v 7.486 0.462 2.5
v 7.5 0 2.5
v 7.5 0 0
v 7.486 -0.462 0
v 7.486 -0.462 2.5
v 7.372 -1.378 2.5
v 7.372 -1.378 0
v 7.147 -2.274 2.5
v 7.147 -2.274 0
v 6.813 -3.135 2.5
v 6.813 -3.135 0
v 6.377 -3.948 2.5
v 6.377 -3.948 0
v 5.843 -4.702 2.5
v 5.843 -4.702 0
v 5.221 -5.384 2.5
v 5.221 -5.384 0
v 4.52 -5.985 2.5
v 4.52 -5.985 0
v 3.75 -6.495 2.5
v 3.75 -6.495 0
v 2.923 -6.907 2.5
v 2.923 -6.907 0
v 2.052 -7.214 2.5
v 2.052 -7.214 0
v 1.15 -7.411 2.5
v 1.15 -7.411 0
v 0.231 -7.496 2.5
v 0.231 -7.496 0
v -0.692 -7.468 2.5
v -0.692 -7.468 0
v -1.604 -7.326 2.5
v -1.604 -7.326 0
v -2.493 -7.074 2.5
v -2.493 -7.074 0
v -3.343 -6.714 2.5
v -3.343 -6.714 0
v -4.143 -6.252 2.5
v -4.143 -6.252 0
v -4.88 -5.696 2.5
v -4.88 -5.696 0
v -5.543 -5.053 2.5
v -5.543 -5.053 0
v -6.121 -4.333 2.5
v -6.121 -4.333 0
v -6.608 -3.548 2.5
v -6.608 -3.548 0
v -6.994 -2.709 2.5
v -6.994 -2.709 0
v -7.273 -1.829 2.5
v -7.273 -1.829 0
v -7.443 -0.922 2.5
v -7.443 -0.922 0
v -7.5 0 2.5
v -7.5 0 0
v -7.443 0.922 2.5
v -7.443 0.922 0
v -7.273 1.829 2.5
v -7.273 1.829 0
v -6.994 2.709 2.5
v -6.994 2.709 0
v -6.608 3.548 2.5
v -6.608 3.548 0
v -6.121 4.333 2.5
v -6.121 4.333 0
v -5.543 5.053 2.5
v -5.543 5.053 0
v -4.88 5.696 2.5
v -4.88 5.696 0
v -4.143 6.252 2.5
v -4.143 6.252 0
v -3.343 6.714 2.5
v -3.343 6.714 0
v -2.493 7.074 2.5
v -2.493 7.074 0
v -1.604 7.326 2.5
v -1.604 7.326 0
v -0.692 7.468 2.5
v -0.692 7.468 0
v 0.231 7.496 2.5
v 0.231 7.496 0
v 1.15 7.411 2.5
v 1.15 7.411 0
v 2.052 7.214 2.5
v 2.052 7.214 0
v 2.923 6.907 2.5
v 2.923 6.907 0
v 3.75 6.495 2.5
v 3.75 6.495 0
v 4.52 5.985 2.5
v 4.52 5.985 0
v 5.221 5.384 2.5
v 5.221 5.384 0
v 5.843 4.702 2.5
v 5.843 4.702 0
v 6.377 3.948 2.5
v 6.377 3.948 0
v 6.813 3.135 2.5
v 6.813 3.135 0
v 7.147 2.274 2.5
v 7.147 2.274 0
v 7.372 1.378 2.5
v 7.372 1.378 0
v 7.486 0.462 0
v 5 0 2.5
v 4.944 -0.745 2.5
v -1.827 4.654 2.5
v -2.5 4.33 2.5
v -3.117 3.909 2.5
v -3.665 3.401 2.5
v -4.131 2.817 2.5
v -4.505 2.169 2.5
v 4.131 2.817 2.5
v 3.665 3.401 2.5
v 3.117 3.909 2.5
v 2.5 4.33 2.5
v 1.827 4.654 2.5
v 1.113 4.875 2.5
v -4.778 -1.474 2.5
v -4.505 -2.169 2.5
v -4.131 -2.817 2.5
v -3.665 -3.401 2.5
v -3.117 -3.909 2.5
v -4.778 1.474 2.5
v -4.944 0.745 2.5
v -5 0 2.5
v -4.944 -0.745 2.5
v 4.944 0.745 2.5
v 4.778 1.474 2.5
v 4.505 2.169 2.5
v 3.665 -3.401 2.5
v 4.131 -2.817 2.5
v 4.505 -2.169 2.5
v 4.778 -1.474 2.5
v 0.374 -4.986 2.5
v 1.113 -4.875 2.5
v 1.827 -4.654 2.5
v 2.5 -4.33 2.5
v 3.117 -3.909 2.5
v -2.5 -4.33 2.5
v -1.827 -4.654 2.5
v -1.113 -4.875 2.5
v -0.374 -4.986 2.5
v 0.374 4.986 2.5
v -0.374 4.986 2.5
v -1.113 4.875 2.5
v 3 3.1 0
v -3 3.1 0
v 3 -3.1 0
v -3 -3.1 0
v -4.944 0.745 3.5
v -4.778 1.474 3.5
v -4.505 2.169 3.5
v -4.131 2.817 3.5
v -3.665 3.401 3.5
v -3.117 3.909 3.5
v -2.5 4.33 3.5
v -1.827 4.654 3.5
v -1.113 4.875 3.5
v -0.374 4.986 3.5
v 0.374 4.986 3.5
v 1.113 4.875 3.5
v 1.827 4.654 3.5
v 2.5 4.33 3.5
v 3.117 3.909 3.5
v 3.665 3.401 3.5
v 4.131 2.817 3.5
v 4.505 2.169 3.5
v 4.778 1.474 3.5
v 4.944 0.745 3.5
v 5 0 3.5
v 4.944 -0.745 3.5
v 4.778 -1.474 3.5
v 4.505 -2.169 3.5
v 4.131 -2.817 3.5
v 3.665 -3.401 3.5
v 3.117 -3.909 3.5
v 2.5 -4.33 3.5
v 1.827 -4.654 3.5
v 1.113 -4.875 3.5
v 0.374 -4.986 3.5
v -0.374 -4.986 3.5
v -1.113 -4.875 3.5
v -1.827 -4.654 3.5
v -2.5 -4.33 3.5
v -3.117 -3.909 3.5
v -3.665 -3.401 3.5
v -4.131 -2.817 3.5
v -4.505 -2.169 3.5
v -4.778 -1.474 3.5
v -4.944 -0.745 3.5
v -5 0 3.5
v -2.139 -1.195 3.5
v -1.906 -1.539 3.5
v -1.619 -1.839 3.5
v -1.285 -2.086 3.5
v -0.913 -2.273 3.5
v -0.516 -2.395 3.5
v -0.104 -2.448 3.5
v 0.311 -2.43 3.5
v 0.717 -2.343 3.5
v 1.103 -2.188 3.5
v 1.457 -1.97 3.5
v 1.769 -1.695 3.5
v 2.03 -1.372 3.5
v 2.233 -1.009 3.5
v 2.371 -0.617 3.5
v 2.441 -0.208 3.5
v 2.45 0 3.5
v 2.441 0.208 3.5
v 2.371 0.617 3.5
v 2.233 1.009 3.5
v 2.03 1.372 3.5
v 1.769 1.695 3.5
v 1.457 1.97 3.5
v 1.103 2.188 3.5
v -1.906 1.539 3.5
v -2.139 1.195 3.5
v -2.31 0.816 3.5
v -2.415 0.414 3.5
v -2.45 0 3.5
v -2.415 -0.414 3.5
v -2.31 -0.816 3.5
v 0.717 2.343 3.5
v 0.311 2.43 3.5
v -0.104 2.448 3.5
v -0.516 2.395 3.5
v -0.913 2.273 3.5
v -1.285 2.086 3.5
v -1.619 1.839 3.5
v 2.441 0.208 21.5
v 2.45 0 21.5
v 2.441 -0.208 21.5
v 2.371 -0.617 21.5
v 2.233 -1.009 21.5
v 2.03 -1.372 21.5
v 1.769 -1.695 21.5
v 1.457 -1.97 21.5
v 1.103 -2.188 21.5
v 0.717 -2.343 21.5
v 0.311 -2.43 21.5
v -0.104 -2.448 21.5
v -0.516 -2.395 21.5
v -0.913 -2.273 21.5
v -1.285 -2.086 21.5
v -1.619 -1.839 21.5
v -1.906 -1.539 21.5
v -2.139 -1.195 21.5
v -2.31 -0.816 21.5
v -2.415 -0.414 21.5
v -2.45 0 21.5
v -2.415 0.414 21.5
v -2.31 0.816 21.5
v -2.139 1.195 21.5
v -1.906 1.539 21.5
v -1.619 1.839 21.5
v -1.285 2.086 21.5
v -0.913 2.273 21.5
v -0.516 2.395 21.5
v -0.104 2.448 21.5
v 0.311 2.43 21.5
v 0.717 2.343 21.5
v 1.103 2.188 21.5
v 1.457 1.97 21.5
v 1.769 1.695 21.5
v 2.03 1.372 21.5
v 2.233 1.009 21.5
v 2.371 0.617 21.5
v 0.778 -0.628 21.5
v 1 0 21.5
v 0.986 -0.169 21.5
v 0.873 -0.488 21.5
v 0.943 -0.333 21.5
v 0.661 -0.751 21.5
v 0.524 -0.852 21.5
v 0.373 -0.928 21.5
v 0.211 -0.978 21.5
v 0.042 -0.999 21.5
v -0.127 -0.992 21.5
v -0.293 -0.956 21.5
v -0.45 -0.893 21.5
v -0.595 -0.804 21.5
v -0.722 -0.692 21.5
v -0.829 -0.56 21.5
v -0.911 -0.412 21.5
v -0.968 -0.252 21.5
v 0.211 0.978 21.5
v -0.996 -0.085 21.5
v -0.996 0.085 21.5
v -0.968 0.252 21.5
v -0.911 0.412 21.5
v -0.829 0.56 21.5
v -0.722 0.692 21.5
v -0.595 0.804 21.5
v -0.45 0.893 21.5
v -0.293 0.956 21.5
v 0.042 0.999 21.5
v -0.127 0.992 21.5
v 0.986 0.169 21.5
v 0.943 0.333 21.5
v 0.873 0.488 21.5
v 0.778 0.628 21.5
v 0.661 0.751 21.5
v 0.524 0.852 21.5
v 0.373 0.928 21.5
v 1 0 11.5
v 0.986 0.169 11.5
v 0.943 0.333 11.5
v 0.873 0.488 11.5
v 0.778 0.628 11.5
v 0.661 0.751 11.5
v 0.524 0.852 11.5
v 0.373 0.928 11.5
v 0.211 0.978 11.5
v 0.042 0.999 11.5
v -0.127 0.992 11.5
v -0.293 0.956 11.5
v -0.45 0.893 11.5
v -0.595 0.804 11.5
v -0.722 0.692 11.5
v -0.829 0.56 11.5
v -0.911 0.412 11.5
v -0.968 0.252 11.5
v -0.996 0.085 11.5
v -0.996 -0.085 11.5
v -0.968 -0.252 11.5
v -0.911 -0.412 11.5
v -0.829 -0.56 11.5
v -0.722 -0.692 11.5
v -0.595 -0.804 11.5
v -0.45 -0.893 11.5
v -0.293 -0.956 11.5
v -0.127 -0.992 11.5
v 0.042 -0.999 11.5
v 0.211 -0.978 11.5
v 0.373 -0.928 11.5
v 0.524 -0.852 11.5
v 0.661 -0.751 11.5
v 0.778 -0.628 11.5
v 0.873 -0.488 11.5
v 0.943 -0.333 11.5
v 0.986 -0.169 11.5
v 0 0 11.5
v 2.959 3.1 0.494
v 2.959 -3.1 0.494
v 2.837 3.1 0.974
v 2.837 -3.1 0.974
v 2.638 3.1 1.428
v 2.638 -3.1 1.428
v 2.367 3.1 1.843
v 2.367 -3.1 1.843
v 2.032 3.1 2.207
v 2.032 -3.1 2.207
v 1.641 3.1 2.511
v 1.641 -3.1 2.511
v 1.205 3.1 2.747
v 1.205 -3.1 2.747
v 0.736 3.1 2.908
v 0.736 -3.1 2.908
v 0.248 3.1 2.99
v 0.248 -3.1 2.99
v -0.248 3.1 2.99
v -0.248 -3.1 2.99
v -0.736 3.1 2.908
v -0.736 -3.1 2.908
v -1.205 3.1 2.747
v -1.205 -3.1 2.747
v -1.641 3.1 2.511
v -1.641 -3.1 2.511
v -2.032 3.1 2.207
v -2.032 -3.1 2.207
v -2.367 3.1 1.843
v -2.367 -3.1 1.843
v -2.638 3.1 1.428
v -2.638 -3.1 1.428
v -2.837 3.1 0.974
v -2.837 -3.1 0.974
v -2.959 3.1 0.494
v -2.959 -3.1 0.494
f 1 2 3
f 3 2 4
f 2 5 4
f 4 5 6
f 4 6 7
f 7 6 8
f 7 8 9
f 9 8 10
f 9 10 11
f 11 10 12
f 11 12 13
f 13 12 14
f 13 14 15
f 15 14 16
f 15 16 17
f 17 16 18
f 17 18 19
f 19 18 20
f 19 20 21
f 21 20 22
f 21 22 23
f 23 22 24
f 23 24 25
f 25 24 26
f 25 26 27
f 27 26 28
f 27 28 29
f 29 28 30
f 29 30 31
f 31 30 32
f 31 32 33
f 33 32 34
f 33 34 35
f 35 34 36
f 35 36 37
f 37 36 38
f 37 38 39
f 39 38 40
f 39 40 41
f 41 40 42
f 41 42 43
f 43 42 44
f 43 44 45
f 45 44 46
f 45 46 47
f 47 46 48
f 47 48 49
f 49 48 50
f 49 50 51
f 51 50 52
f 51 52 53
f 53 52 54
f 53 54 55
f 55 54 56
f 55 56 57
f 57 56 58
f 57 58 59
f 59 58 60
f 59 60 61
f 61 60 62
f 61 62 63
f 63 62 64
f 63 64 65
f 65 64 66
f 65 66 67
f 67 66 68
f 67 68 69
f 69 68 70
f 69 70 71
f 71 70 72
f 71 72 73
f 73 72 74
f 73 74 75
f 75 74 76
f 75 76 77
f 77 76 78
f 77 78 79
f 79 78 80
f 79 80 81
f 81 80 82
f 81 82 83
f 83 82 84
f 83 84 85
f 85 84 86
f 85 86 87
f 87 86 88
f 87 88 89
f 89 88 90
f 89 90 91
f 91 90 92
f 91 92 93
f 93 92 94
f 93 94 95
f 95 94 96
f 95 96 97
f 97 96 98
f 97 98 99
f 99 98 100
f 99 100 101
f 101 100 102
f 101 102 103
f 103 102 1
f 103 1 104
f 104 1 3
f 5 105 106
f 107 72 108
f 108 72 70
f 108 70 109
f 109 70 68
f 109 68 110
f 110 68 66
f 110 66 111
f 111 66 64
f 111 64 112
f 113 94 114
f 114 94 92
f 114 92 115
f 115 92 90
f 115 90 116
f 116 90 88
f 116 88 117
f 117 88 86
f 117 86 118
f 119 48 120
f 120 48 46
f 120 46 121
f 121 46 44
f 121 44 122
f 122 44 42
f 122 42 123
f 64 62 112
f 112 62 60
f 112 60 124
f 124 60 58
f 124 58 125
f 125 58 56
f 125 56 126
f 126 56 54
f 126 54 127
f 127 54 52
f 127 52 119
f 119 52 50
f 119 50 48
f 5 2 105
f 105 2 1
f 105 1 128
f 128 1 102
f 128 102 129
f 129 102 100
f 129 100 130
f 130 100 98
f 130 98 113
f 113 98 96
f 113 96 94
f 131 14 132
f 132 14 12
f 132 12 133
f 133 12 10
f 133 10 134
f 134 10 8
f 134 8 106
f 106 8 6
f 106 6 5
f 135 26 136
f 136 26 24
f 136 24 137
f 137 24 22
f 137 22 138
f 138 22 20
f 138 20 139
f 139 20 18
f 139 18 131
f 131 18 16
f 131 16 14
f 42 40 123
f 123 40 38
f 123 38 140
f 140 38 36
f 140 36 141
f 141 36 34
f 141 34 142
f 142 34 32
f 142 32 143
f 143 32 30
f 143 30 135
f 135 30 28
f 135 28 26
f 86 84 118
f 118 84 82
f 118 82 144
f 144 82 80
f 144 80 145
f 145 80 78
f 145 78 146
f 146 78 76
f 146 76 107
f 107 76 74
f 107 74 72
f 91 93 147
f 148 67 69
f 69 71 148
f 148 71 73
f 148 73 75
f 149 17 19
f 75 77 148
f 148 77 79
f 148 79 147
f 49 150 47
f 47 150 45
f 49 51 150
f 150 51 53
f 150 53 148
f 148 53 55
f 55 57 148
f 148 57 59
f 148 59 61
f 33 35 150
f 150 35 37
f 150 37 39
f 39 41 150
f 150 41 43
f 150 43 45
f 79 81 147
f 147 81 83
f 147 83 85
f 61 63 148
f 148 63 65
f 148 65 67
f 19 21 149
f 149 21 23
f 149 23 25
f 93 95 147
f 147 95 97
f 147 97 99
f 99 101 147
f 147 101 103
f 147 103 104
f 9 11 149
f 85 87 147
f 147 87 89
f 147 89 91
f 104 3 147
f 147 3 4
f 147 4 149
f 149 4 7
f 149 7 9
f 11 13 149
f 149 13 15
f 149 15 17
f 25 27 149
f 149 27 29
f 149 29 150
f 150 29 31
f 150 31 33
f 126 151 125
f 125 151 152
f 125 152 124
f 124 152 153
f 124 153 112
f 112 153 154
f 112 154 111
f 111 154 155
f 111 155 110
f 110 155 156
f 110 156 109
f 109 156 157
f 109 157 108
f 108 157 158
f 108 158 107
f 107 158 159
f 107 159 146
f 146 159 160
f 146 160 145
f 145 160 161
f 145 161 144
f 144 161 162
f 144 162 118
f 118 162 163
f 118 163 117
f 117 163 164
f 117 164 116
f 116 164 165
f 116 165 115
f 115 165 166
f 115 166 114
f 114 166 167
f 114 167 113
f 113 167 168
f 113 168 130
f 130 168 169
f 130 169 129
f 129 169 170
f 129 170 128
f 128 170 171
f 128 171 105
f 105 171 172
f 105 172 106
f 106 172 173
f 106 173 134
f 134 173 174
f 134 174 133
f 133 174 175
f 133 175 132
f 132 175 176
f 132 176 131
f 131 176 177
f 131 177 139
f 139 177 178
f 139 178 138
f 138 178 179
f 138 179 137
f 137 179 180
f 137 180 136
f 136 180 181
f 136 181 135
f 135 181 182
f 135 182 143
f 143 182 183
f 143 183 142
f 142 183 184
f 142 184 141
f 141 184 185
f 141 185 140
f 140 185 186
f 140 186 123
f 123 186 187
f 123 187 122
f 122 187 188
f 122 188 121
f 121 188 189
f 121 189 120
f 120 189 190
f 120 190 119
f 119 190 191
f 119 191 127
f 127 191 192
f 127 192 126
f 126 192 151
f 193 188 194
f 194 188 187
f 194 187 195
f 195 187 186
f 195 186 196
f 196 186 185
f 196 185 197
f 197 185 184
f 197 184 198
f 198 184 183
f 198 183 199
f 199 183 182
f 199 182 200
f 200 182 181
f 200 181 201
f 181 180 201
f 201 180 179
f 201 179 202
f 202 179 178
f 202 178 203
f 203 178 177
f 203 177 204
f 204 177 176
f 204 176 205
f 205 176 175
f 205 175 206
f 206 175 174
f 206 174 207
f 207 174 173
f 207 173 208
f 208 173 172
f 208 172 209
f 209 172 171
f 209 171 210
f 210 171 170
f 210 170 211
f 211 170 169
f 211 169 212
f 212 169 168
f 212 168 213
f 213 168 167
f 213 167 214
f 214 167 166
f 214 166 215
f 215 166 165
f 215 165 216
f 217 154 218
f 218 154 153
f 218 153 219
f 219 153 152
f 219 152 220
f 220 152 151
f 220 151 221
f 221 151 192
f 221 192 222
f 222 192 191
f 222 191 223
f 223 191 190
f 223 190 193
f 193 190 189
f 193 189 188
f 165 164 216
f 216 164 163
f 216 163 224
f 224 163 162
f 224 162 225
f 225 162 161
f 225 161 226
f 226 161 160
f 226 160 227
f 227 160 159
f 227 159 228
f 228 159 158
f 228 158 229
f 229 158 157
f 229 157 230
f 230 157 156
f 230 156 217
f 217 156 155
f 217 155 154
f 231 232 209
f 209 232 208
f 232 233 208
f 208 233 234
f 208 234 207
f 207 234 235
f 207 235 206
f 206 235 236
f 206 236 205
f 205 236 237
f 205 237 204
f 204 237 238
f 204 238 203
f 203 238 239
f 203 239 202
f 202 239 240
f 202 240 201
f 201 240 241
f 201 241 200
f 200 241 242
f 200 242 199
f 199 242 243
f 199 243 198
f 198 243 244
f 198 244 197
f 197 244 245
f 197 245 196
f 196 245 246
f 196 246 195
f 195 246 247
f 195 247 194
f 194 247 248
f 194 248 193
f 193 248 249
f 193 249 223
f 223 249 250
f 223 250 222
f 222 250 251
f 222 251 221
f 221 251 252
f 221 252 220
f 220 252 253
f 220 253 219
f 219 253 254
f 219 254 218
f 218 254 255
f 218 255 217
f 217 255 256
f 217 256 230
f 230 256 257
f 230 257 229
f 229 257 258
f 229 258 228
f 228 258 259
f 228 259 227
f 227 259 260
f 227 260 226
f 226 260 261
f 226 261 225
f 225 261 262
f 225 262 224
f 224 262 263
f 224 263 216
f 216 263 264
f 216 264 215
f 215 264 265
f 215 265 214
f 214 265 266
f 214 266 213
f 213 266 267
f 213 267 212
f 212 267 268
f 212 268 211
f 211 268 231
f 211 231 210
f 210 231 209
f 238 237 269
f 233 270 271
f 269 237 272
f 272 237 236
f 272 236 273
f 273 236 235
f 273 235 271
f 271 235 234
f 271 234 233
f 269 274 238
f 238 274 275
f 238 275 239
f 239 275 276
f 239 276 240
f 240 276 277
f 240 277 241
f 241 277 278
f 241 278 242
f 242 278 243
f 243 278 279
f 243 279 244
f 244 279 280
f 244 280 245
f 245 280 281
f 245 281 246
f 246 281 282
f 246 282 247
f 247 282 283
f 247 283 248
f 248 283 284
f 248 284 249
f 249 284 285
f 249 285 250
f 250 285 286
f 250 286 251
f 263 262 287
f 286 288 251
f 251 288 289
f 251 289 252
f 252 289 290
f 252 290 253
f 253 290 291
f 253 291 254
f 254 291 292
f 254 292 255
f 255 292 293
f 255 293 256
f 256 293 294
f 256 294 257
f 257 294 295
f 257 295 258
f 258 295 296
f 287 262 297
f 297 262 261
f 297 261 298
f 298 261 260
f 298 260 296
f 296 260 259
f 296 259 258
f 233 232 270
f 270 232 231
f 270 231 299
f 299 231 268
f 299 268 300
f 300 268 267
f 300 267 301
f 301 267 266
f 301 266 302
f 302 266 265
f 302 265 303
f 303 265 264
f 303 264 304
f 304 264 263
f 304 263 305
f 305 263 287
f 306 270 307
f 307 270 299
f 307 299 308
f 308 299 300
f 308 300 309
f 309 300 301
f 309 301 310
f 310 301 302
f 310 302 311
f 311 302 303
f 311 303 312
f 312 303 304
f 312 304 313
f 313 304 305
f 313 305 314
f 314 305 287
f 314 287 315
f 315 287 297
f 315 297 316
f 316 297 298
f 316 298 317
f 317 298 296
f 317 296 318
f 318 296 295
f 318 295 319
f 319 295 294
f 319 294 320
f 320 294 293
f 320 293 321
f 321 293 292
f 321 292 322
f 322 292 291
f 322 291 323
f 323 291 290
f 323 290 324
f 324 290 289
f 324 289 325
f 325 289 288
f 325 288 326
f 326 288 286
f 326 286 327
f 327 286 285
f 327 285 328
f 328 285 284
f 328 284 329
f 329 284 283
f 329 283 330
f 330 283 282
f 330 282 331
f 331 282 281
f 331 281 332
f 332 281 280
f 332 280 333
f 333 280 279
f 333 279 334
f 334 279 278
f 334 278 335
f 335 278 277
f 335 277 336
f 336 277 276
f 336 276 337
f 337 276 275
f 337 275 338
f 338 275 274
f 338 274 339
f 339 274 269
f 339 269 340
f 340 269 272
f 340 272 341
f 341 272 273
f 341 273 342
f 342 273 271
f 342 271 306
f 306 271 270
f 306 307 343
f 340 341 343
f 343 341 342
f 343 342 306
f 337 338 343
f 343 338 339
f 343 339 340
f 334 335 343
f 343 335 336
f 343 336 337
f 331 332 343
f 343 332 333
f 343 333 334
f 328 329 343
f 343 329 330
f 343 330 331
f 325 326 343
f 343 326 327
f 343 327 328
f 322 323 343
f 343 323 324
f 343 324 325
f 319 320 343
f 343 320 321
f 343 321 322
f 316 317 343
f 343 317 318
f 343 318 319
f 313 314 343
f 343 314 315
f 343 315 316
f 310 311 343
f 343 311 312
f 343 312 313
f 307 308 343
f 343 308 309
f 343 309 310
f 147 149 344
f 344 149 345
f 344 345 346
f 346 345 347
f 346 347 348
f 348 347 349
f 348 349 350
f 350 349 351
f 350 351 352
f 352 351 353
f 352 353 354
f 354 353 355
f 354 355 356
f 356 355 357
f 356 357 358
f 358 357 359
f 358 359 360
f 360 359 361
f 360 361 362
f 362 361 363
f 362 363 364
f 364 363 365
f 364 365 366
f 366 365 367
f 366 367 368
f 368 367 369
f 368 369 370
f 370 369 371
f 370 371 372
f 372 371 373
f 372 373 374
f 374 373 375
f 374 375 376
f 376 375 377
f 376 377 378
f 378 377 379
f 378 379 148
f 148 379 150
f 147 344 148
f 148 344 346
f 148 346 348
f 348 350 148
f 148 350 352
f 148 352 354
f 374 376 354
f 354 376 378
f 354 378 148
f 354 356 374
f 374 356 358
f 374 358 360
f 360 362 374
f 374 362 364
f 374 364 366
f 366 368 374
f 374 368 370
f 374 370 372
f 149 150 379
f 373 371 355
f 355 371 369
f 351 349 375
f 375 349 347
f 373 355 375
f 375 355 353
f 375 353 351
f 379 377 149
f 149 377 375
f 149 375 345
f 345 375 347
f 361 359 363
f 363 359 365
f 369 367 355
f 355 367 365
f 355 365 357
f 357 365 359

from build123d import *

# Parameters (mm, degrees)
SKETCH_1_R               = 7.5
EXTRUDE_1_DEPTH          = 2.5
SKETCH_2_R               = 5
EXTRUDE_2_DEPTH          = 1
SKETCH_3_R               = 2.45
EXTRUDE_3_DEPTH          = 18
SKETCH_4_R               = 1
CUT_EXTRUDE_1_DEPTH      = 10
CUT_EXTRUDE_2_DEPTH      = 3.1
CUT_EXTRUDE_2_DEPTH_BACK = 3.1
SKETCH_5_R               = 3


with BuildPart() as part:
    # 스케치1 → 보스-돌출1 (new body)
    with BuildSketch(Plane.XY):
        Circle(SKETCH_1_R)
    extrude(amount=EXTRUDE_1_DEPTH)

    # 스케치2 → 보스-돌출2 (add)
    with BuildSketch(Plane.XY.offset(2.5)):
        Circle(SKETCH_2_R)
    extrude(amount=EXTRUDE_2_DEPTH)

    # 스케치3 → 보스-돌출3 (add)
    with BuildSketch(Plane.XY.offset(3.5)):
        Circle(SKETCH_3_R)
    extrude(amount=EXTRUDE_3_DEPTH)

    # 스케치4 → 컷-돌출1 (cut)
    with BuildSketch(Plane.XY.offset(21.5)):
        Circle(SKETCH_4_R)
    extrude(amount=-CUT_EXTRUDE_1_DEPTH, mode=Mode.SUBTRACT)

    # 스케치5 → 컷-돌출2 (cut, two sides: drawn at the far end of the back side and taken through both)
    with BuildSketch(Plane(origin=(0, 0, 0), x_dir=(1, 0, 0), z_dir=(0, 1, 0)).offset(-CUT_EXTRUDE_2_DEPTH_BACK)):
        Circle(SKETCH_5_R)
    extrude(amount=CUT_EXTRUDE_2_DEPTH + CUT_EXTRUDE_2_DEPTH_BACK, mode=Mode.SUBTRACT)


solid = part.part
